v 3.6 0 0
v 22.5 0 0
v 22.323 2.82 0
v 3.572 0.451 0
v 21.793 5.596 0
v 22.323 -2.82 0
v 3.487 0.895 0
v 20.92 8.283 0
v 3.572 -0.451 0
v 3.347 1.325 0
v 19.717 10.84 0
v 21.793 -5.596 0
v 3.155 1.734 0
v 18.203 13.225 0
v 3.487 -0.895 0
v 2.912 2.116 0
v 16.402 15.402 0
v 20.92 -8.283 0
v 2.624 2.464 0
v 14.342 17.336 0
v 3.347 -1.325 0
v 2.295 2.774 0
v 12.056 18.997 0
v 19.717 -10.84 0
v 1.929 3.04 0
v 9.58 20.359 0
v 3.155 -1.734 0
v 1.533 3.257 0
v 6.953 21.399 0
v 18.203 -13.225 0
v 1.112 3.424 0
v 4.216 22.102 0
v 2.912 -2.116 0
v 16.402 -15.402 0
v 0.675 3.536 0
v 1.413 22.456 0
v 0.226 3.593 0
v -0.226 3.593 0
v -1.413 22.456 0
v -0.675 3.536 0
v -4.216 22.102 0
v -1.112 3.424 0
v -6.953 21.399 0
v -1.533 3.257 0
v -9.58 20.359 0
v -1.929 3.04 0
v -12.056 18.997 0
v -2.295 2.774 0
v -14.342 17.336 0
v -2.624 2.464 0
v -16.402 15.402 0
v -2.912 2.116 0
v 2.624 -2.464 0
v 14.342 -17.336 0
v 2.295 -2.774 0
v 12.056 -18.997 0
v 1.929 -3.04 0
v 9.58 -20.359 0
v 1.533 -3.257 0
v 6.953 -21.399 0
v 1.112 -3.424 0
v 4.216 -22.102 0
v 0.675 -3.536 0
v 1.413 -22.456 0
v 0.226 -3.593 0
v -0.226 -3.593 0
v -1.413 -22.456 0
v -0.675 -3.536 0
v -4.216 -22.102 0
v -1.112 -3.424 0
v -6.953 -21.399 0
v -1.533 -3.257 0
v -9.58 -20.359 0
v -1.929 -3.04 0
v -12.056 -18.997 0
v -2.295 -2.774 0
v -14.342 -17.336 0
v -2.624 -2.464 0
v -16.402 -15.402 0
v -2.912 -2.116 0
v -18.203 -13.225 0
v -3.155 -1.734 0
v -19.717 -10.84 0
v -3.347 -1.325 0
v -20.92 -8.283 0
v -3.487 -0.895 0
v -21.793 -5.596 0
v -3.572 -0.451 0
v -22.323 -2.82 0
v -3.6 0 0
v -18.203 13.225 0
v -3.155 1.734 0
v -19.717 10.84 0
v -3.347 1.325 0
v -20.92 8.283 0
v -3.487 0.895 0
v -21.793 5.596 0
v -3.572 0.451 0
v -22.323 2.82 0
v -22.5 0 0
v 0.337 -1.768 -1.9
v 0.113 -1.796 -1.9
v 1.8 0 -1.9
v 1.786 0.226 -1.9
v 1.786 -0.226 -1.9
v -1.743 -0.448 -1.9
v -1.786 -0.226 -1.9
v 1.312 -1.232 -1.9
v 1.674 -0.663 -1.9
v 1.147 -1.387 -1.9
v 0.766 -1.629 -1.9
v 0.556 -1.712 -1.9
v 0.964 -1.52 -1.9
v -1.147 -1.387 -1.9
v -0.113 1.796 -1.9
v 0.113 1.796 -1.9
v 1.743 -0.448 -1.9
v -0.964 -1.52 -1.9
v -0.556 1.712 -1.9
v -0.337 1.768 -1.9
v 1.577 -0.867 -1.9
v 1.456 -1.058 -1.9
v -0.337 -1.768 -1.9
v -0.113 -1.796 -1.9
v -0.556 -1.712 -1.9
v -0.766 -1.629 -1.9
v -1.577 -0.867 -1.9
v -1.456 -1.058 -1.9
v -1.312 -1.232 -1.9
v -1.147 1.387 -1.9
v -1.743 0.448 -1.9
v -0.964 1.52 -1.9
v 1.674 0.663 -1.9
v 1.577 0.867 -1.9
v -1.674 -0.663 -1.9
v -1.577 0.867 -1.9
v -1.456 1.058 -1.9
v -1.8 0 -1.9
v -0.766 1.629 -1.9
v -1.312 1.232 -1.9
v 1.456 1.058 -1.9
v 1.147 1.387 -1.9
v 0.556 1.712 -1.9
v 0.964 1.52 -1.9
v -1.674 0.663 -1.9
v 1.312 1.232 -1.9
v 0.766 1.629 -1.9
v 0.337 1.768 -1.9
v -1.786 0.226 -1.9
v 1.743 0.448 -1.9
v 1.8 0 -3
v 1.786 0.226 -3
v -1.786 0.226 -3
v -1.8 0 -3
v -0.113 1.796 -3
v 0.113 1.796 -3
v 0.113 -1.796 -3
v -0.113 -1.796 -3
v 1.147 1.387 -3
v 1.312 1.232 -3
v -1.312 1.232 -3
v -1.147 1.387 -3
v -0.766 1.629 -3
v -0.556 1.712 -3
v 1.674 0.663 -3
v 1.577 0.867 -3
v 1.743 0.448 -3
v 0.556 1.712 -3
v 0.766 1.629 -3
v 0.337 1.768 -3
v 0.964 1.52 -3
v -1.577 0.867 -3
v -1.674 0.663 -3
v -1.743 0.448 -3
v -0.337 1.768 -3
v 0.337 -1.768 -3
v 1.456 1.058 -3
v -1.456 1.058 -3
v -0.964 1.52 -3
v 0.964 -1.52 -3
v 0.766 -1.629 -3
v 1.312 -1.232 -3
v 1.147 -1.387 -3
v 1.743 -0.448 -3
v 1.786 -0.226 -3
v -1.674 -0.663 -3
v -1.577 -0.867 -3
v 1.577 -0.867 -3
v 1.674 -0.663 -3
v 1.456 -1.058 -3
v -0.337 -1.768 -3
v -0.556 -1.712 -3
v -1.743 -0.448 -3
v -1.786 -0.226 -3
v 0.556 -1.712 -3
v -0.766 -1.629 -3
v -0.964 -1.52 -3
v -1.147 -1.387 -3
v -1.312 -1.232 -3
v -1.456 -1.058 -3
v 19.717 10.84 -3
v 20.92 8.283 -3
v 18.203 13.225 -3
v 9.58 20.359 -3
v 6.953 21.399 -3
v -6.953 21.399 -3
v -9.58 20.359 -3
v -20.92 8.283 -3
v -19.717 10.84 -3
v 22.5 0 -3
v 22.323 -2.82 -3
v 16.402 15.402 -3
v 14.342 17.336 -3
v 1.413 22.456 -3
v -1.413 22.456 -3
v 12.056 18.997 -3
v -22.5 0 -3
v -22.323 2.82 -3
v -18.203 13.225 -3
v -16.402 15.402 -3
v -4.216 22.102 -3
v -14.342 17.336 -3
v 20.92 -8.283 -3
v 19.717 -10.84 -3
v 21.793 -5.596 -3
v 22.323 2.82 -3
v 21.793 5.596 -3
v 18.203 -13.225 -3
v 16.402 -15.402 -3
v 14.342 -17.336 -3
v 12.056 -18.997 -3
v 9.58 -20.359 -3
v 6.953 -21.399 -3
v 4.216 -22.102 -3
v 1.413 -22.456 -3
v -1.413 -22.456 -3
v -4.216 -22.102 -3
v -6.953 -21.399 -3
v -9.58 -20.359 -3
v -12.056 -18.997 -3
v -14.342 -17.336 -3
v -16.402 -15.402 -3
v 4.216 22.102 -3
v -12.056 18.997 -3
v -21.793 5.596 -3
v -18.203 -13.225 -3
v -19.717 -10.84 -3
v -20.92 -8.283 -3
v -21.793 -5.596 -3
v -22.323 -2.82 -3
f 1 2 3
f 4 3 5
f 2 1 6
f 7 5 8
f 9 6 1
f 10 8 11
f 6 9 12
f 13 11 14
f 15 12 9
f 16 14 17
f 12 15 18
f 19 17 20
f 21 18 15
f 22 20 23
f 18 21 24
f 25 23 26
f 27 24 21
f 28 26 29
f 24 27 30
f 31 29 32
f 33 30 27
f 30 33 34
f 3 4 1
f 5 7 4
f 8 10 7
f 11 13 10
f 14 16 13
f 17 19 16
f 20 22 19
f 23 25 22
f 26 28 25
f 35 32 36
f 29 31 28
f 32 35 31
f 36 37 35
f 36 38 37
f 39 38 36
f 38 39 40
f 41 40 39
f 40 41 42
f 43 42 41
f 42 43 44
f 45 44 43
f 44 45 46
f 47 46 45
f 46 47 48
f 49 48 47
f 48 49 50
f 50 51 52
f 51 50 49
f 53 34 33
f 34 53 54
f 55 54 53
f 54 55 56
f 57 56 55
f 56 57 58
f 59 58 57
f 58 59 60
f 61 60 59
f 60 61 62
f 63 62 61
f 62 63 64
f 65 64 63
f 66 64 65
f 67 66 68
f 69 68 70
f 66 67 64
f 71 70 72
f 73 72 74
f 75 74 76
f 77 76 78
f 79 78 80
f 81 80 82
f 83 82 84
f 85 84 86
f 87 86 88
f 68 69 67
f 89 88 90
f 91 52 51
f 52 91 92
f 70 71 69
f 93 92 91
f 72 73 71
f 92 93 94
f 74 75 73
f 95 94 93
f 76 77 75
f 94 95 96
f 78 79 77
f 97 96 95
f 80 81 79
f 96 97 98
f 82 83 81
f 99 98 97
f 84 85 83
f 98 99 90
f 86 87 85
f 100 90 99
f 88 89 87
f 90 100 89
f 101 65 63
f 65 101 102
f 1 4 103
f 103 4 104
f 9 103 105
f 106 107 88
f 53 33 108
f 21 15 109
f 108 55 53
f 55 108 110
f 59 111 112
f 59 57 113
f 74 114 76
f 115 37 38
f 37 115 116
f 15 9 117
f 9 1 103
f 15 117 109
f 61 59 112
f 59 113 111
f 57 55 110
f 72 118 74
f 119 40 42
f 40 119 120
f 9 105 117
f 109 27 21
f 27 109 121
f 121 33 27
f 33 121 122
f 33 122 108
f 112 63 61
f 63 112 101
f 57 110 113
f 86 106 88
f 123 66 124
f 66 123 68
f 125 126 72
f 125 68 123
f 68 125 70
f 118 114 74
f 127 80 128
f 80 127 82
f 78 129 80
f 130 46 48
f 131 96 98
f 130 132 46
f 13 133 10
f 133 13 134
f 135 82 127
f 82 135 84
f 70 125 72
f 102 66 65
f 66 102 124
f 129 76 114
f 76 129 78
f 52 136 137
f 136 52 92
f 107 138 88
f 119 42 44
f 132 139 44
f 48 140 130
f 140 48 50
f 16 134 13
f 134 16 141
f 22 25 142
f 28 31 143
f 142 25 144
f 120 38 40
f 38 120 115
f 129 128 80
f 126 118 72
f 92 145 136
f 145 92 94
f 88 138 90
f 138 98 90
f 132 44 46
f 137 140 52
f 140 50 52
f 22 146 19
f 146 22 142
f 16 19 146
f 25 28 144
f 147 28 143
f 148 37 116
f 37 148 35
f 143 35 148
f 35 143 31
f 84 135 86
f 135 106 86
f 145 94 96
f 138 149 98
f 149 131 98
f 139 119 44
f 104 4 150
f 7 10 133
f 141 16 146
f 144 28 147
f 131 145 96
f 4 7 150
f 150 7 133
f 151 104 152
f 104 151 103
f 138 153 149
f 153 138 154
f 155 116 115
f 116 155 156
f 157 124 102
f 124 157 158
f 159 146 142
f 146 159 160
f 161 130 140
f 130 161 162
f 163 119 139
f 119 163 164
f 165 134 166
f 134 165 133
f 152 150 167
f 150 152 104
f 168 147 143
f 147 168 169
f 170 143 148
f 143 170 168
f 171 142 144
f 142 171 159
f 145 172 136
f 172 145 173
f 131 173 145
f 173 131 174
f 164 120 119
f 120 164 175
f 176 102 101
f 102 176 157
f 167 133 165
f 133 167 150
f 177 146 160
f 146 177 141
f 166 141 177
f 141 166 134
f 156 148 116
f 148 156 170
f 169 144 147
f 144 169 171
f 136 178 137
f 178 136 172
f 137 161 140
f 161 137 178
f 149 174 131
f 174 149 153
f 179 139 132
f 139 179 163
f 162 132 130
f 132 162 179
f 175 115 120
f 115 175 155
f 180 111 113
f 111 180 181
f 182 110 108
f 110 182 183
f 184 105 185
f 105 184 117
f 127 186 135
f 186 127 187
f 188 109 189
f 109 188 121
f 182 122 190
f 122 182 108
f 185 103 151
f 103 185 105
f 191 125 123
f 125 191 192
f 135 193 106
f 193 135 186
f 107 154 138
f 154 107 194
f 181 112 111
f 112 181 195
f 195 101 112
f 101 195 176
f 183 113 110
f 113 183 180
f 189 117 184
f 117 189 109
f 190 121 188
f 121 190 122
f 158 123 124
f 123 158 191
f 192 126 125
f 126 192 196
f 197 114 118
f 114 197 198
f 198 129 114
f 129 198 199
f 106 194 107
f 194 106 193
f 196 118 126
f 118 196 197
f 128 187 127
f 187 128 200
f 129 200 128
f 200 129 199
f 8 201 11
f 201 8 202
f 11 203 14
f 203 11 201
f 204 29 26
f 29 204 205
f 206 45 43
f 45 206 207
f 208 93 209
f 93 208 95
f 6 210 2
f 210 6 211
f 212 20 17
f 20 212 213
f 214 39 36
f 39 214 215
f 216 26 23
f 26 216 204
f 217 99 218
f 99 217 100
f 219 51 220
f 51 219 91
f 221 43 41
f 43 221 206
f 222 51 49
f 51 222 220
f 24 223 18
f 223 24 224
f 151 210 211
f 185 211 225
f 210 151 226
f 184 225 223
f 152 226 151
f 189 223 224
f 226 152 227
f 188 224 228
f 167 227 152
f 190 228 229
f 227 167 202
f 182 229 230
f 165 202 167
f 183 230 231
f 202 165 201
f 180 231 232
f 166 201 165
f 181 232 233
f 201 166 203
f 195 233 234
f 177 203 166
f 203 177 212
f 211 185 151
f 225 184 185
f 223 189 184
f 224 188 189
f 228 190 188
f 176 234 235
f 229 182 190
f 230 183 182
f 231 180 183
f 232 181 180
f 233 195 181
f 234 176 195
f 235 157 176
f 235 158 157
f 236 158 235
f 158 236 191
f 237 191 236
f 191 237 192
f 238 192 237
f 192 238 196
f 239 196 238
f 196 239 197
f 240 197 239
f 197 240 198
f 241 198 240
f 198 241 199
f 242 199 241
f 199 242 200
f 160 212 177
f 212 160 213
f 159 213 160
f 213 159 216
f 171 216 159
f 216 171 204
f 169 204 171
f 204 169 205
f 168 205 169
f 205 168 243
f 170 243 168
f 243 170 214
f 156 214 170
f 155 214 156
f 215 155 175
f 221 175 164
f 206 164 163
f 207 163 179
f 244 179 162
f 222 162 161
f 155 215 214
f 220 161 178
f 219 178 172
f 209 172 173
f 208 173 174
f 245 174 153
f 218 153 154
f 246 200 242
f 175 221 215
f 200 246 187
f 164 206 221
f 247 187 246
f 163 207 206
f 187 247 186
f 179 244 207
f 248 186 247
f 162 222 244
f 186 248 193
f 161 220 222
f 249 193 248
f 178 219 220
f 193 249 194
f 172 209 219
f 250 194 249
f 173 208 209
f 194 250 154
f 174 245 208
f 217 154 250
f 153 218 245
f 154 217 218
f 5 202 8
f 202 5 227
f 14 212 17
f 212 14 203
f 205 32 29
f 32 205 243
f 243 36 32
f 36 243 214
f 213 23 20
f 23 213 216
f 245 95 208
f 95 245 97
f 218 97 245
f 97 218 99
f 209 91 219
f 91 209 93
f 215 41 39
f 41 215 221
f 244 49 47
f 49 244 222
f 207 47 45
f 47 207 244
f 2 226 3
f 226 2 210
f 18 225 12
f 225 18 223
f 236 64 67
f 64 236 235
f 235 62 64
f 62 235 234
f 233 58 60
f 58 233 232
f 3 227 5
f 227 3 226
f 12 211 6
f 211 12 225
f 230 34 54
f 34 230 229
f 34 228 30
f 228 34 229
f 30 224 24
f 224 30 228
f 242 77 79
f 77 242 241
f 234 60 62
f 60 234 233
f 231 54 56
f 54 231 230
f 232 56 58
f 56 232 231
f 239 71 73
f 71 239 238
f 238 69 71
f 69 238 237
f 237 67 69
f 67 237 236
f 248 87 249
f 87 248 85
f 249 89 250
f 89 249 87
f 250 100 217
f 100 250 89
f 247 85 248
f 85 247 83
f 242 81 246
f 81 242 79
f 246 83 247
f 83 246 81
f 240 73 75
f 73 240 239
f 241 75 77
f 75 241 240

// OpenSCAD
$fn = 50;


difference() {
	union() {
		translate(v = [0, 0, -3.0000000000]) {
			cylinder(h = 3, r = 22.5000000000);
		}
	}
	union() {
		translate(v = [0, 0, 0]) {
			rotate(a = [0, 0, 0]) {
				difference() {
					union() {
						translate(v = [0, 0, -6.0000000000]) {
							cylinder(h = 6, r = 1.5000000000);
						}
						translate(v = [0, 0, -1.9000000000]) {
							cylinder(h = 1.9000000000, r1 = 1.8000000000, r2 = 3.6000000000);
						}
						translate(v = [0, 0, -6.0000000000]) {
							cylinder(h = 6, r = 1.8000000000);
						}
						translate(v = [0, 0, -6.0000000000]) {
							cylinder(h = 6, r = 1.5000000000);
						}
					}
					union();
				}
			}
		}
	}
}
